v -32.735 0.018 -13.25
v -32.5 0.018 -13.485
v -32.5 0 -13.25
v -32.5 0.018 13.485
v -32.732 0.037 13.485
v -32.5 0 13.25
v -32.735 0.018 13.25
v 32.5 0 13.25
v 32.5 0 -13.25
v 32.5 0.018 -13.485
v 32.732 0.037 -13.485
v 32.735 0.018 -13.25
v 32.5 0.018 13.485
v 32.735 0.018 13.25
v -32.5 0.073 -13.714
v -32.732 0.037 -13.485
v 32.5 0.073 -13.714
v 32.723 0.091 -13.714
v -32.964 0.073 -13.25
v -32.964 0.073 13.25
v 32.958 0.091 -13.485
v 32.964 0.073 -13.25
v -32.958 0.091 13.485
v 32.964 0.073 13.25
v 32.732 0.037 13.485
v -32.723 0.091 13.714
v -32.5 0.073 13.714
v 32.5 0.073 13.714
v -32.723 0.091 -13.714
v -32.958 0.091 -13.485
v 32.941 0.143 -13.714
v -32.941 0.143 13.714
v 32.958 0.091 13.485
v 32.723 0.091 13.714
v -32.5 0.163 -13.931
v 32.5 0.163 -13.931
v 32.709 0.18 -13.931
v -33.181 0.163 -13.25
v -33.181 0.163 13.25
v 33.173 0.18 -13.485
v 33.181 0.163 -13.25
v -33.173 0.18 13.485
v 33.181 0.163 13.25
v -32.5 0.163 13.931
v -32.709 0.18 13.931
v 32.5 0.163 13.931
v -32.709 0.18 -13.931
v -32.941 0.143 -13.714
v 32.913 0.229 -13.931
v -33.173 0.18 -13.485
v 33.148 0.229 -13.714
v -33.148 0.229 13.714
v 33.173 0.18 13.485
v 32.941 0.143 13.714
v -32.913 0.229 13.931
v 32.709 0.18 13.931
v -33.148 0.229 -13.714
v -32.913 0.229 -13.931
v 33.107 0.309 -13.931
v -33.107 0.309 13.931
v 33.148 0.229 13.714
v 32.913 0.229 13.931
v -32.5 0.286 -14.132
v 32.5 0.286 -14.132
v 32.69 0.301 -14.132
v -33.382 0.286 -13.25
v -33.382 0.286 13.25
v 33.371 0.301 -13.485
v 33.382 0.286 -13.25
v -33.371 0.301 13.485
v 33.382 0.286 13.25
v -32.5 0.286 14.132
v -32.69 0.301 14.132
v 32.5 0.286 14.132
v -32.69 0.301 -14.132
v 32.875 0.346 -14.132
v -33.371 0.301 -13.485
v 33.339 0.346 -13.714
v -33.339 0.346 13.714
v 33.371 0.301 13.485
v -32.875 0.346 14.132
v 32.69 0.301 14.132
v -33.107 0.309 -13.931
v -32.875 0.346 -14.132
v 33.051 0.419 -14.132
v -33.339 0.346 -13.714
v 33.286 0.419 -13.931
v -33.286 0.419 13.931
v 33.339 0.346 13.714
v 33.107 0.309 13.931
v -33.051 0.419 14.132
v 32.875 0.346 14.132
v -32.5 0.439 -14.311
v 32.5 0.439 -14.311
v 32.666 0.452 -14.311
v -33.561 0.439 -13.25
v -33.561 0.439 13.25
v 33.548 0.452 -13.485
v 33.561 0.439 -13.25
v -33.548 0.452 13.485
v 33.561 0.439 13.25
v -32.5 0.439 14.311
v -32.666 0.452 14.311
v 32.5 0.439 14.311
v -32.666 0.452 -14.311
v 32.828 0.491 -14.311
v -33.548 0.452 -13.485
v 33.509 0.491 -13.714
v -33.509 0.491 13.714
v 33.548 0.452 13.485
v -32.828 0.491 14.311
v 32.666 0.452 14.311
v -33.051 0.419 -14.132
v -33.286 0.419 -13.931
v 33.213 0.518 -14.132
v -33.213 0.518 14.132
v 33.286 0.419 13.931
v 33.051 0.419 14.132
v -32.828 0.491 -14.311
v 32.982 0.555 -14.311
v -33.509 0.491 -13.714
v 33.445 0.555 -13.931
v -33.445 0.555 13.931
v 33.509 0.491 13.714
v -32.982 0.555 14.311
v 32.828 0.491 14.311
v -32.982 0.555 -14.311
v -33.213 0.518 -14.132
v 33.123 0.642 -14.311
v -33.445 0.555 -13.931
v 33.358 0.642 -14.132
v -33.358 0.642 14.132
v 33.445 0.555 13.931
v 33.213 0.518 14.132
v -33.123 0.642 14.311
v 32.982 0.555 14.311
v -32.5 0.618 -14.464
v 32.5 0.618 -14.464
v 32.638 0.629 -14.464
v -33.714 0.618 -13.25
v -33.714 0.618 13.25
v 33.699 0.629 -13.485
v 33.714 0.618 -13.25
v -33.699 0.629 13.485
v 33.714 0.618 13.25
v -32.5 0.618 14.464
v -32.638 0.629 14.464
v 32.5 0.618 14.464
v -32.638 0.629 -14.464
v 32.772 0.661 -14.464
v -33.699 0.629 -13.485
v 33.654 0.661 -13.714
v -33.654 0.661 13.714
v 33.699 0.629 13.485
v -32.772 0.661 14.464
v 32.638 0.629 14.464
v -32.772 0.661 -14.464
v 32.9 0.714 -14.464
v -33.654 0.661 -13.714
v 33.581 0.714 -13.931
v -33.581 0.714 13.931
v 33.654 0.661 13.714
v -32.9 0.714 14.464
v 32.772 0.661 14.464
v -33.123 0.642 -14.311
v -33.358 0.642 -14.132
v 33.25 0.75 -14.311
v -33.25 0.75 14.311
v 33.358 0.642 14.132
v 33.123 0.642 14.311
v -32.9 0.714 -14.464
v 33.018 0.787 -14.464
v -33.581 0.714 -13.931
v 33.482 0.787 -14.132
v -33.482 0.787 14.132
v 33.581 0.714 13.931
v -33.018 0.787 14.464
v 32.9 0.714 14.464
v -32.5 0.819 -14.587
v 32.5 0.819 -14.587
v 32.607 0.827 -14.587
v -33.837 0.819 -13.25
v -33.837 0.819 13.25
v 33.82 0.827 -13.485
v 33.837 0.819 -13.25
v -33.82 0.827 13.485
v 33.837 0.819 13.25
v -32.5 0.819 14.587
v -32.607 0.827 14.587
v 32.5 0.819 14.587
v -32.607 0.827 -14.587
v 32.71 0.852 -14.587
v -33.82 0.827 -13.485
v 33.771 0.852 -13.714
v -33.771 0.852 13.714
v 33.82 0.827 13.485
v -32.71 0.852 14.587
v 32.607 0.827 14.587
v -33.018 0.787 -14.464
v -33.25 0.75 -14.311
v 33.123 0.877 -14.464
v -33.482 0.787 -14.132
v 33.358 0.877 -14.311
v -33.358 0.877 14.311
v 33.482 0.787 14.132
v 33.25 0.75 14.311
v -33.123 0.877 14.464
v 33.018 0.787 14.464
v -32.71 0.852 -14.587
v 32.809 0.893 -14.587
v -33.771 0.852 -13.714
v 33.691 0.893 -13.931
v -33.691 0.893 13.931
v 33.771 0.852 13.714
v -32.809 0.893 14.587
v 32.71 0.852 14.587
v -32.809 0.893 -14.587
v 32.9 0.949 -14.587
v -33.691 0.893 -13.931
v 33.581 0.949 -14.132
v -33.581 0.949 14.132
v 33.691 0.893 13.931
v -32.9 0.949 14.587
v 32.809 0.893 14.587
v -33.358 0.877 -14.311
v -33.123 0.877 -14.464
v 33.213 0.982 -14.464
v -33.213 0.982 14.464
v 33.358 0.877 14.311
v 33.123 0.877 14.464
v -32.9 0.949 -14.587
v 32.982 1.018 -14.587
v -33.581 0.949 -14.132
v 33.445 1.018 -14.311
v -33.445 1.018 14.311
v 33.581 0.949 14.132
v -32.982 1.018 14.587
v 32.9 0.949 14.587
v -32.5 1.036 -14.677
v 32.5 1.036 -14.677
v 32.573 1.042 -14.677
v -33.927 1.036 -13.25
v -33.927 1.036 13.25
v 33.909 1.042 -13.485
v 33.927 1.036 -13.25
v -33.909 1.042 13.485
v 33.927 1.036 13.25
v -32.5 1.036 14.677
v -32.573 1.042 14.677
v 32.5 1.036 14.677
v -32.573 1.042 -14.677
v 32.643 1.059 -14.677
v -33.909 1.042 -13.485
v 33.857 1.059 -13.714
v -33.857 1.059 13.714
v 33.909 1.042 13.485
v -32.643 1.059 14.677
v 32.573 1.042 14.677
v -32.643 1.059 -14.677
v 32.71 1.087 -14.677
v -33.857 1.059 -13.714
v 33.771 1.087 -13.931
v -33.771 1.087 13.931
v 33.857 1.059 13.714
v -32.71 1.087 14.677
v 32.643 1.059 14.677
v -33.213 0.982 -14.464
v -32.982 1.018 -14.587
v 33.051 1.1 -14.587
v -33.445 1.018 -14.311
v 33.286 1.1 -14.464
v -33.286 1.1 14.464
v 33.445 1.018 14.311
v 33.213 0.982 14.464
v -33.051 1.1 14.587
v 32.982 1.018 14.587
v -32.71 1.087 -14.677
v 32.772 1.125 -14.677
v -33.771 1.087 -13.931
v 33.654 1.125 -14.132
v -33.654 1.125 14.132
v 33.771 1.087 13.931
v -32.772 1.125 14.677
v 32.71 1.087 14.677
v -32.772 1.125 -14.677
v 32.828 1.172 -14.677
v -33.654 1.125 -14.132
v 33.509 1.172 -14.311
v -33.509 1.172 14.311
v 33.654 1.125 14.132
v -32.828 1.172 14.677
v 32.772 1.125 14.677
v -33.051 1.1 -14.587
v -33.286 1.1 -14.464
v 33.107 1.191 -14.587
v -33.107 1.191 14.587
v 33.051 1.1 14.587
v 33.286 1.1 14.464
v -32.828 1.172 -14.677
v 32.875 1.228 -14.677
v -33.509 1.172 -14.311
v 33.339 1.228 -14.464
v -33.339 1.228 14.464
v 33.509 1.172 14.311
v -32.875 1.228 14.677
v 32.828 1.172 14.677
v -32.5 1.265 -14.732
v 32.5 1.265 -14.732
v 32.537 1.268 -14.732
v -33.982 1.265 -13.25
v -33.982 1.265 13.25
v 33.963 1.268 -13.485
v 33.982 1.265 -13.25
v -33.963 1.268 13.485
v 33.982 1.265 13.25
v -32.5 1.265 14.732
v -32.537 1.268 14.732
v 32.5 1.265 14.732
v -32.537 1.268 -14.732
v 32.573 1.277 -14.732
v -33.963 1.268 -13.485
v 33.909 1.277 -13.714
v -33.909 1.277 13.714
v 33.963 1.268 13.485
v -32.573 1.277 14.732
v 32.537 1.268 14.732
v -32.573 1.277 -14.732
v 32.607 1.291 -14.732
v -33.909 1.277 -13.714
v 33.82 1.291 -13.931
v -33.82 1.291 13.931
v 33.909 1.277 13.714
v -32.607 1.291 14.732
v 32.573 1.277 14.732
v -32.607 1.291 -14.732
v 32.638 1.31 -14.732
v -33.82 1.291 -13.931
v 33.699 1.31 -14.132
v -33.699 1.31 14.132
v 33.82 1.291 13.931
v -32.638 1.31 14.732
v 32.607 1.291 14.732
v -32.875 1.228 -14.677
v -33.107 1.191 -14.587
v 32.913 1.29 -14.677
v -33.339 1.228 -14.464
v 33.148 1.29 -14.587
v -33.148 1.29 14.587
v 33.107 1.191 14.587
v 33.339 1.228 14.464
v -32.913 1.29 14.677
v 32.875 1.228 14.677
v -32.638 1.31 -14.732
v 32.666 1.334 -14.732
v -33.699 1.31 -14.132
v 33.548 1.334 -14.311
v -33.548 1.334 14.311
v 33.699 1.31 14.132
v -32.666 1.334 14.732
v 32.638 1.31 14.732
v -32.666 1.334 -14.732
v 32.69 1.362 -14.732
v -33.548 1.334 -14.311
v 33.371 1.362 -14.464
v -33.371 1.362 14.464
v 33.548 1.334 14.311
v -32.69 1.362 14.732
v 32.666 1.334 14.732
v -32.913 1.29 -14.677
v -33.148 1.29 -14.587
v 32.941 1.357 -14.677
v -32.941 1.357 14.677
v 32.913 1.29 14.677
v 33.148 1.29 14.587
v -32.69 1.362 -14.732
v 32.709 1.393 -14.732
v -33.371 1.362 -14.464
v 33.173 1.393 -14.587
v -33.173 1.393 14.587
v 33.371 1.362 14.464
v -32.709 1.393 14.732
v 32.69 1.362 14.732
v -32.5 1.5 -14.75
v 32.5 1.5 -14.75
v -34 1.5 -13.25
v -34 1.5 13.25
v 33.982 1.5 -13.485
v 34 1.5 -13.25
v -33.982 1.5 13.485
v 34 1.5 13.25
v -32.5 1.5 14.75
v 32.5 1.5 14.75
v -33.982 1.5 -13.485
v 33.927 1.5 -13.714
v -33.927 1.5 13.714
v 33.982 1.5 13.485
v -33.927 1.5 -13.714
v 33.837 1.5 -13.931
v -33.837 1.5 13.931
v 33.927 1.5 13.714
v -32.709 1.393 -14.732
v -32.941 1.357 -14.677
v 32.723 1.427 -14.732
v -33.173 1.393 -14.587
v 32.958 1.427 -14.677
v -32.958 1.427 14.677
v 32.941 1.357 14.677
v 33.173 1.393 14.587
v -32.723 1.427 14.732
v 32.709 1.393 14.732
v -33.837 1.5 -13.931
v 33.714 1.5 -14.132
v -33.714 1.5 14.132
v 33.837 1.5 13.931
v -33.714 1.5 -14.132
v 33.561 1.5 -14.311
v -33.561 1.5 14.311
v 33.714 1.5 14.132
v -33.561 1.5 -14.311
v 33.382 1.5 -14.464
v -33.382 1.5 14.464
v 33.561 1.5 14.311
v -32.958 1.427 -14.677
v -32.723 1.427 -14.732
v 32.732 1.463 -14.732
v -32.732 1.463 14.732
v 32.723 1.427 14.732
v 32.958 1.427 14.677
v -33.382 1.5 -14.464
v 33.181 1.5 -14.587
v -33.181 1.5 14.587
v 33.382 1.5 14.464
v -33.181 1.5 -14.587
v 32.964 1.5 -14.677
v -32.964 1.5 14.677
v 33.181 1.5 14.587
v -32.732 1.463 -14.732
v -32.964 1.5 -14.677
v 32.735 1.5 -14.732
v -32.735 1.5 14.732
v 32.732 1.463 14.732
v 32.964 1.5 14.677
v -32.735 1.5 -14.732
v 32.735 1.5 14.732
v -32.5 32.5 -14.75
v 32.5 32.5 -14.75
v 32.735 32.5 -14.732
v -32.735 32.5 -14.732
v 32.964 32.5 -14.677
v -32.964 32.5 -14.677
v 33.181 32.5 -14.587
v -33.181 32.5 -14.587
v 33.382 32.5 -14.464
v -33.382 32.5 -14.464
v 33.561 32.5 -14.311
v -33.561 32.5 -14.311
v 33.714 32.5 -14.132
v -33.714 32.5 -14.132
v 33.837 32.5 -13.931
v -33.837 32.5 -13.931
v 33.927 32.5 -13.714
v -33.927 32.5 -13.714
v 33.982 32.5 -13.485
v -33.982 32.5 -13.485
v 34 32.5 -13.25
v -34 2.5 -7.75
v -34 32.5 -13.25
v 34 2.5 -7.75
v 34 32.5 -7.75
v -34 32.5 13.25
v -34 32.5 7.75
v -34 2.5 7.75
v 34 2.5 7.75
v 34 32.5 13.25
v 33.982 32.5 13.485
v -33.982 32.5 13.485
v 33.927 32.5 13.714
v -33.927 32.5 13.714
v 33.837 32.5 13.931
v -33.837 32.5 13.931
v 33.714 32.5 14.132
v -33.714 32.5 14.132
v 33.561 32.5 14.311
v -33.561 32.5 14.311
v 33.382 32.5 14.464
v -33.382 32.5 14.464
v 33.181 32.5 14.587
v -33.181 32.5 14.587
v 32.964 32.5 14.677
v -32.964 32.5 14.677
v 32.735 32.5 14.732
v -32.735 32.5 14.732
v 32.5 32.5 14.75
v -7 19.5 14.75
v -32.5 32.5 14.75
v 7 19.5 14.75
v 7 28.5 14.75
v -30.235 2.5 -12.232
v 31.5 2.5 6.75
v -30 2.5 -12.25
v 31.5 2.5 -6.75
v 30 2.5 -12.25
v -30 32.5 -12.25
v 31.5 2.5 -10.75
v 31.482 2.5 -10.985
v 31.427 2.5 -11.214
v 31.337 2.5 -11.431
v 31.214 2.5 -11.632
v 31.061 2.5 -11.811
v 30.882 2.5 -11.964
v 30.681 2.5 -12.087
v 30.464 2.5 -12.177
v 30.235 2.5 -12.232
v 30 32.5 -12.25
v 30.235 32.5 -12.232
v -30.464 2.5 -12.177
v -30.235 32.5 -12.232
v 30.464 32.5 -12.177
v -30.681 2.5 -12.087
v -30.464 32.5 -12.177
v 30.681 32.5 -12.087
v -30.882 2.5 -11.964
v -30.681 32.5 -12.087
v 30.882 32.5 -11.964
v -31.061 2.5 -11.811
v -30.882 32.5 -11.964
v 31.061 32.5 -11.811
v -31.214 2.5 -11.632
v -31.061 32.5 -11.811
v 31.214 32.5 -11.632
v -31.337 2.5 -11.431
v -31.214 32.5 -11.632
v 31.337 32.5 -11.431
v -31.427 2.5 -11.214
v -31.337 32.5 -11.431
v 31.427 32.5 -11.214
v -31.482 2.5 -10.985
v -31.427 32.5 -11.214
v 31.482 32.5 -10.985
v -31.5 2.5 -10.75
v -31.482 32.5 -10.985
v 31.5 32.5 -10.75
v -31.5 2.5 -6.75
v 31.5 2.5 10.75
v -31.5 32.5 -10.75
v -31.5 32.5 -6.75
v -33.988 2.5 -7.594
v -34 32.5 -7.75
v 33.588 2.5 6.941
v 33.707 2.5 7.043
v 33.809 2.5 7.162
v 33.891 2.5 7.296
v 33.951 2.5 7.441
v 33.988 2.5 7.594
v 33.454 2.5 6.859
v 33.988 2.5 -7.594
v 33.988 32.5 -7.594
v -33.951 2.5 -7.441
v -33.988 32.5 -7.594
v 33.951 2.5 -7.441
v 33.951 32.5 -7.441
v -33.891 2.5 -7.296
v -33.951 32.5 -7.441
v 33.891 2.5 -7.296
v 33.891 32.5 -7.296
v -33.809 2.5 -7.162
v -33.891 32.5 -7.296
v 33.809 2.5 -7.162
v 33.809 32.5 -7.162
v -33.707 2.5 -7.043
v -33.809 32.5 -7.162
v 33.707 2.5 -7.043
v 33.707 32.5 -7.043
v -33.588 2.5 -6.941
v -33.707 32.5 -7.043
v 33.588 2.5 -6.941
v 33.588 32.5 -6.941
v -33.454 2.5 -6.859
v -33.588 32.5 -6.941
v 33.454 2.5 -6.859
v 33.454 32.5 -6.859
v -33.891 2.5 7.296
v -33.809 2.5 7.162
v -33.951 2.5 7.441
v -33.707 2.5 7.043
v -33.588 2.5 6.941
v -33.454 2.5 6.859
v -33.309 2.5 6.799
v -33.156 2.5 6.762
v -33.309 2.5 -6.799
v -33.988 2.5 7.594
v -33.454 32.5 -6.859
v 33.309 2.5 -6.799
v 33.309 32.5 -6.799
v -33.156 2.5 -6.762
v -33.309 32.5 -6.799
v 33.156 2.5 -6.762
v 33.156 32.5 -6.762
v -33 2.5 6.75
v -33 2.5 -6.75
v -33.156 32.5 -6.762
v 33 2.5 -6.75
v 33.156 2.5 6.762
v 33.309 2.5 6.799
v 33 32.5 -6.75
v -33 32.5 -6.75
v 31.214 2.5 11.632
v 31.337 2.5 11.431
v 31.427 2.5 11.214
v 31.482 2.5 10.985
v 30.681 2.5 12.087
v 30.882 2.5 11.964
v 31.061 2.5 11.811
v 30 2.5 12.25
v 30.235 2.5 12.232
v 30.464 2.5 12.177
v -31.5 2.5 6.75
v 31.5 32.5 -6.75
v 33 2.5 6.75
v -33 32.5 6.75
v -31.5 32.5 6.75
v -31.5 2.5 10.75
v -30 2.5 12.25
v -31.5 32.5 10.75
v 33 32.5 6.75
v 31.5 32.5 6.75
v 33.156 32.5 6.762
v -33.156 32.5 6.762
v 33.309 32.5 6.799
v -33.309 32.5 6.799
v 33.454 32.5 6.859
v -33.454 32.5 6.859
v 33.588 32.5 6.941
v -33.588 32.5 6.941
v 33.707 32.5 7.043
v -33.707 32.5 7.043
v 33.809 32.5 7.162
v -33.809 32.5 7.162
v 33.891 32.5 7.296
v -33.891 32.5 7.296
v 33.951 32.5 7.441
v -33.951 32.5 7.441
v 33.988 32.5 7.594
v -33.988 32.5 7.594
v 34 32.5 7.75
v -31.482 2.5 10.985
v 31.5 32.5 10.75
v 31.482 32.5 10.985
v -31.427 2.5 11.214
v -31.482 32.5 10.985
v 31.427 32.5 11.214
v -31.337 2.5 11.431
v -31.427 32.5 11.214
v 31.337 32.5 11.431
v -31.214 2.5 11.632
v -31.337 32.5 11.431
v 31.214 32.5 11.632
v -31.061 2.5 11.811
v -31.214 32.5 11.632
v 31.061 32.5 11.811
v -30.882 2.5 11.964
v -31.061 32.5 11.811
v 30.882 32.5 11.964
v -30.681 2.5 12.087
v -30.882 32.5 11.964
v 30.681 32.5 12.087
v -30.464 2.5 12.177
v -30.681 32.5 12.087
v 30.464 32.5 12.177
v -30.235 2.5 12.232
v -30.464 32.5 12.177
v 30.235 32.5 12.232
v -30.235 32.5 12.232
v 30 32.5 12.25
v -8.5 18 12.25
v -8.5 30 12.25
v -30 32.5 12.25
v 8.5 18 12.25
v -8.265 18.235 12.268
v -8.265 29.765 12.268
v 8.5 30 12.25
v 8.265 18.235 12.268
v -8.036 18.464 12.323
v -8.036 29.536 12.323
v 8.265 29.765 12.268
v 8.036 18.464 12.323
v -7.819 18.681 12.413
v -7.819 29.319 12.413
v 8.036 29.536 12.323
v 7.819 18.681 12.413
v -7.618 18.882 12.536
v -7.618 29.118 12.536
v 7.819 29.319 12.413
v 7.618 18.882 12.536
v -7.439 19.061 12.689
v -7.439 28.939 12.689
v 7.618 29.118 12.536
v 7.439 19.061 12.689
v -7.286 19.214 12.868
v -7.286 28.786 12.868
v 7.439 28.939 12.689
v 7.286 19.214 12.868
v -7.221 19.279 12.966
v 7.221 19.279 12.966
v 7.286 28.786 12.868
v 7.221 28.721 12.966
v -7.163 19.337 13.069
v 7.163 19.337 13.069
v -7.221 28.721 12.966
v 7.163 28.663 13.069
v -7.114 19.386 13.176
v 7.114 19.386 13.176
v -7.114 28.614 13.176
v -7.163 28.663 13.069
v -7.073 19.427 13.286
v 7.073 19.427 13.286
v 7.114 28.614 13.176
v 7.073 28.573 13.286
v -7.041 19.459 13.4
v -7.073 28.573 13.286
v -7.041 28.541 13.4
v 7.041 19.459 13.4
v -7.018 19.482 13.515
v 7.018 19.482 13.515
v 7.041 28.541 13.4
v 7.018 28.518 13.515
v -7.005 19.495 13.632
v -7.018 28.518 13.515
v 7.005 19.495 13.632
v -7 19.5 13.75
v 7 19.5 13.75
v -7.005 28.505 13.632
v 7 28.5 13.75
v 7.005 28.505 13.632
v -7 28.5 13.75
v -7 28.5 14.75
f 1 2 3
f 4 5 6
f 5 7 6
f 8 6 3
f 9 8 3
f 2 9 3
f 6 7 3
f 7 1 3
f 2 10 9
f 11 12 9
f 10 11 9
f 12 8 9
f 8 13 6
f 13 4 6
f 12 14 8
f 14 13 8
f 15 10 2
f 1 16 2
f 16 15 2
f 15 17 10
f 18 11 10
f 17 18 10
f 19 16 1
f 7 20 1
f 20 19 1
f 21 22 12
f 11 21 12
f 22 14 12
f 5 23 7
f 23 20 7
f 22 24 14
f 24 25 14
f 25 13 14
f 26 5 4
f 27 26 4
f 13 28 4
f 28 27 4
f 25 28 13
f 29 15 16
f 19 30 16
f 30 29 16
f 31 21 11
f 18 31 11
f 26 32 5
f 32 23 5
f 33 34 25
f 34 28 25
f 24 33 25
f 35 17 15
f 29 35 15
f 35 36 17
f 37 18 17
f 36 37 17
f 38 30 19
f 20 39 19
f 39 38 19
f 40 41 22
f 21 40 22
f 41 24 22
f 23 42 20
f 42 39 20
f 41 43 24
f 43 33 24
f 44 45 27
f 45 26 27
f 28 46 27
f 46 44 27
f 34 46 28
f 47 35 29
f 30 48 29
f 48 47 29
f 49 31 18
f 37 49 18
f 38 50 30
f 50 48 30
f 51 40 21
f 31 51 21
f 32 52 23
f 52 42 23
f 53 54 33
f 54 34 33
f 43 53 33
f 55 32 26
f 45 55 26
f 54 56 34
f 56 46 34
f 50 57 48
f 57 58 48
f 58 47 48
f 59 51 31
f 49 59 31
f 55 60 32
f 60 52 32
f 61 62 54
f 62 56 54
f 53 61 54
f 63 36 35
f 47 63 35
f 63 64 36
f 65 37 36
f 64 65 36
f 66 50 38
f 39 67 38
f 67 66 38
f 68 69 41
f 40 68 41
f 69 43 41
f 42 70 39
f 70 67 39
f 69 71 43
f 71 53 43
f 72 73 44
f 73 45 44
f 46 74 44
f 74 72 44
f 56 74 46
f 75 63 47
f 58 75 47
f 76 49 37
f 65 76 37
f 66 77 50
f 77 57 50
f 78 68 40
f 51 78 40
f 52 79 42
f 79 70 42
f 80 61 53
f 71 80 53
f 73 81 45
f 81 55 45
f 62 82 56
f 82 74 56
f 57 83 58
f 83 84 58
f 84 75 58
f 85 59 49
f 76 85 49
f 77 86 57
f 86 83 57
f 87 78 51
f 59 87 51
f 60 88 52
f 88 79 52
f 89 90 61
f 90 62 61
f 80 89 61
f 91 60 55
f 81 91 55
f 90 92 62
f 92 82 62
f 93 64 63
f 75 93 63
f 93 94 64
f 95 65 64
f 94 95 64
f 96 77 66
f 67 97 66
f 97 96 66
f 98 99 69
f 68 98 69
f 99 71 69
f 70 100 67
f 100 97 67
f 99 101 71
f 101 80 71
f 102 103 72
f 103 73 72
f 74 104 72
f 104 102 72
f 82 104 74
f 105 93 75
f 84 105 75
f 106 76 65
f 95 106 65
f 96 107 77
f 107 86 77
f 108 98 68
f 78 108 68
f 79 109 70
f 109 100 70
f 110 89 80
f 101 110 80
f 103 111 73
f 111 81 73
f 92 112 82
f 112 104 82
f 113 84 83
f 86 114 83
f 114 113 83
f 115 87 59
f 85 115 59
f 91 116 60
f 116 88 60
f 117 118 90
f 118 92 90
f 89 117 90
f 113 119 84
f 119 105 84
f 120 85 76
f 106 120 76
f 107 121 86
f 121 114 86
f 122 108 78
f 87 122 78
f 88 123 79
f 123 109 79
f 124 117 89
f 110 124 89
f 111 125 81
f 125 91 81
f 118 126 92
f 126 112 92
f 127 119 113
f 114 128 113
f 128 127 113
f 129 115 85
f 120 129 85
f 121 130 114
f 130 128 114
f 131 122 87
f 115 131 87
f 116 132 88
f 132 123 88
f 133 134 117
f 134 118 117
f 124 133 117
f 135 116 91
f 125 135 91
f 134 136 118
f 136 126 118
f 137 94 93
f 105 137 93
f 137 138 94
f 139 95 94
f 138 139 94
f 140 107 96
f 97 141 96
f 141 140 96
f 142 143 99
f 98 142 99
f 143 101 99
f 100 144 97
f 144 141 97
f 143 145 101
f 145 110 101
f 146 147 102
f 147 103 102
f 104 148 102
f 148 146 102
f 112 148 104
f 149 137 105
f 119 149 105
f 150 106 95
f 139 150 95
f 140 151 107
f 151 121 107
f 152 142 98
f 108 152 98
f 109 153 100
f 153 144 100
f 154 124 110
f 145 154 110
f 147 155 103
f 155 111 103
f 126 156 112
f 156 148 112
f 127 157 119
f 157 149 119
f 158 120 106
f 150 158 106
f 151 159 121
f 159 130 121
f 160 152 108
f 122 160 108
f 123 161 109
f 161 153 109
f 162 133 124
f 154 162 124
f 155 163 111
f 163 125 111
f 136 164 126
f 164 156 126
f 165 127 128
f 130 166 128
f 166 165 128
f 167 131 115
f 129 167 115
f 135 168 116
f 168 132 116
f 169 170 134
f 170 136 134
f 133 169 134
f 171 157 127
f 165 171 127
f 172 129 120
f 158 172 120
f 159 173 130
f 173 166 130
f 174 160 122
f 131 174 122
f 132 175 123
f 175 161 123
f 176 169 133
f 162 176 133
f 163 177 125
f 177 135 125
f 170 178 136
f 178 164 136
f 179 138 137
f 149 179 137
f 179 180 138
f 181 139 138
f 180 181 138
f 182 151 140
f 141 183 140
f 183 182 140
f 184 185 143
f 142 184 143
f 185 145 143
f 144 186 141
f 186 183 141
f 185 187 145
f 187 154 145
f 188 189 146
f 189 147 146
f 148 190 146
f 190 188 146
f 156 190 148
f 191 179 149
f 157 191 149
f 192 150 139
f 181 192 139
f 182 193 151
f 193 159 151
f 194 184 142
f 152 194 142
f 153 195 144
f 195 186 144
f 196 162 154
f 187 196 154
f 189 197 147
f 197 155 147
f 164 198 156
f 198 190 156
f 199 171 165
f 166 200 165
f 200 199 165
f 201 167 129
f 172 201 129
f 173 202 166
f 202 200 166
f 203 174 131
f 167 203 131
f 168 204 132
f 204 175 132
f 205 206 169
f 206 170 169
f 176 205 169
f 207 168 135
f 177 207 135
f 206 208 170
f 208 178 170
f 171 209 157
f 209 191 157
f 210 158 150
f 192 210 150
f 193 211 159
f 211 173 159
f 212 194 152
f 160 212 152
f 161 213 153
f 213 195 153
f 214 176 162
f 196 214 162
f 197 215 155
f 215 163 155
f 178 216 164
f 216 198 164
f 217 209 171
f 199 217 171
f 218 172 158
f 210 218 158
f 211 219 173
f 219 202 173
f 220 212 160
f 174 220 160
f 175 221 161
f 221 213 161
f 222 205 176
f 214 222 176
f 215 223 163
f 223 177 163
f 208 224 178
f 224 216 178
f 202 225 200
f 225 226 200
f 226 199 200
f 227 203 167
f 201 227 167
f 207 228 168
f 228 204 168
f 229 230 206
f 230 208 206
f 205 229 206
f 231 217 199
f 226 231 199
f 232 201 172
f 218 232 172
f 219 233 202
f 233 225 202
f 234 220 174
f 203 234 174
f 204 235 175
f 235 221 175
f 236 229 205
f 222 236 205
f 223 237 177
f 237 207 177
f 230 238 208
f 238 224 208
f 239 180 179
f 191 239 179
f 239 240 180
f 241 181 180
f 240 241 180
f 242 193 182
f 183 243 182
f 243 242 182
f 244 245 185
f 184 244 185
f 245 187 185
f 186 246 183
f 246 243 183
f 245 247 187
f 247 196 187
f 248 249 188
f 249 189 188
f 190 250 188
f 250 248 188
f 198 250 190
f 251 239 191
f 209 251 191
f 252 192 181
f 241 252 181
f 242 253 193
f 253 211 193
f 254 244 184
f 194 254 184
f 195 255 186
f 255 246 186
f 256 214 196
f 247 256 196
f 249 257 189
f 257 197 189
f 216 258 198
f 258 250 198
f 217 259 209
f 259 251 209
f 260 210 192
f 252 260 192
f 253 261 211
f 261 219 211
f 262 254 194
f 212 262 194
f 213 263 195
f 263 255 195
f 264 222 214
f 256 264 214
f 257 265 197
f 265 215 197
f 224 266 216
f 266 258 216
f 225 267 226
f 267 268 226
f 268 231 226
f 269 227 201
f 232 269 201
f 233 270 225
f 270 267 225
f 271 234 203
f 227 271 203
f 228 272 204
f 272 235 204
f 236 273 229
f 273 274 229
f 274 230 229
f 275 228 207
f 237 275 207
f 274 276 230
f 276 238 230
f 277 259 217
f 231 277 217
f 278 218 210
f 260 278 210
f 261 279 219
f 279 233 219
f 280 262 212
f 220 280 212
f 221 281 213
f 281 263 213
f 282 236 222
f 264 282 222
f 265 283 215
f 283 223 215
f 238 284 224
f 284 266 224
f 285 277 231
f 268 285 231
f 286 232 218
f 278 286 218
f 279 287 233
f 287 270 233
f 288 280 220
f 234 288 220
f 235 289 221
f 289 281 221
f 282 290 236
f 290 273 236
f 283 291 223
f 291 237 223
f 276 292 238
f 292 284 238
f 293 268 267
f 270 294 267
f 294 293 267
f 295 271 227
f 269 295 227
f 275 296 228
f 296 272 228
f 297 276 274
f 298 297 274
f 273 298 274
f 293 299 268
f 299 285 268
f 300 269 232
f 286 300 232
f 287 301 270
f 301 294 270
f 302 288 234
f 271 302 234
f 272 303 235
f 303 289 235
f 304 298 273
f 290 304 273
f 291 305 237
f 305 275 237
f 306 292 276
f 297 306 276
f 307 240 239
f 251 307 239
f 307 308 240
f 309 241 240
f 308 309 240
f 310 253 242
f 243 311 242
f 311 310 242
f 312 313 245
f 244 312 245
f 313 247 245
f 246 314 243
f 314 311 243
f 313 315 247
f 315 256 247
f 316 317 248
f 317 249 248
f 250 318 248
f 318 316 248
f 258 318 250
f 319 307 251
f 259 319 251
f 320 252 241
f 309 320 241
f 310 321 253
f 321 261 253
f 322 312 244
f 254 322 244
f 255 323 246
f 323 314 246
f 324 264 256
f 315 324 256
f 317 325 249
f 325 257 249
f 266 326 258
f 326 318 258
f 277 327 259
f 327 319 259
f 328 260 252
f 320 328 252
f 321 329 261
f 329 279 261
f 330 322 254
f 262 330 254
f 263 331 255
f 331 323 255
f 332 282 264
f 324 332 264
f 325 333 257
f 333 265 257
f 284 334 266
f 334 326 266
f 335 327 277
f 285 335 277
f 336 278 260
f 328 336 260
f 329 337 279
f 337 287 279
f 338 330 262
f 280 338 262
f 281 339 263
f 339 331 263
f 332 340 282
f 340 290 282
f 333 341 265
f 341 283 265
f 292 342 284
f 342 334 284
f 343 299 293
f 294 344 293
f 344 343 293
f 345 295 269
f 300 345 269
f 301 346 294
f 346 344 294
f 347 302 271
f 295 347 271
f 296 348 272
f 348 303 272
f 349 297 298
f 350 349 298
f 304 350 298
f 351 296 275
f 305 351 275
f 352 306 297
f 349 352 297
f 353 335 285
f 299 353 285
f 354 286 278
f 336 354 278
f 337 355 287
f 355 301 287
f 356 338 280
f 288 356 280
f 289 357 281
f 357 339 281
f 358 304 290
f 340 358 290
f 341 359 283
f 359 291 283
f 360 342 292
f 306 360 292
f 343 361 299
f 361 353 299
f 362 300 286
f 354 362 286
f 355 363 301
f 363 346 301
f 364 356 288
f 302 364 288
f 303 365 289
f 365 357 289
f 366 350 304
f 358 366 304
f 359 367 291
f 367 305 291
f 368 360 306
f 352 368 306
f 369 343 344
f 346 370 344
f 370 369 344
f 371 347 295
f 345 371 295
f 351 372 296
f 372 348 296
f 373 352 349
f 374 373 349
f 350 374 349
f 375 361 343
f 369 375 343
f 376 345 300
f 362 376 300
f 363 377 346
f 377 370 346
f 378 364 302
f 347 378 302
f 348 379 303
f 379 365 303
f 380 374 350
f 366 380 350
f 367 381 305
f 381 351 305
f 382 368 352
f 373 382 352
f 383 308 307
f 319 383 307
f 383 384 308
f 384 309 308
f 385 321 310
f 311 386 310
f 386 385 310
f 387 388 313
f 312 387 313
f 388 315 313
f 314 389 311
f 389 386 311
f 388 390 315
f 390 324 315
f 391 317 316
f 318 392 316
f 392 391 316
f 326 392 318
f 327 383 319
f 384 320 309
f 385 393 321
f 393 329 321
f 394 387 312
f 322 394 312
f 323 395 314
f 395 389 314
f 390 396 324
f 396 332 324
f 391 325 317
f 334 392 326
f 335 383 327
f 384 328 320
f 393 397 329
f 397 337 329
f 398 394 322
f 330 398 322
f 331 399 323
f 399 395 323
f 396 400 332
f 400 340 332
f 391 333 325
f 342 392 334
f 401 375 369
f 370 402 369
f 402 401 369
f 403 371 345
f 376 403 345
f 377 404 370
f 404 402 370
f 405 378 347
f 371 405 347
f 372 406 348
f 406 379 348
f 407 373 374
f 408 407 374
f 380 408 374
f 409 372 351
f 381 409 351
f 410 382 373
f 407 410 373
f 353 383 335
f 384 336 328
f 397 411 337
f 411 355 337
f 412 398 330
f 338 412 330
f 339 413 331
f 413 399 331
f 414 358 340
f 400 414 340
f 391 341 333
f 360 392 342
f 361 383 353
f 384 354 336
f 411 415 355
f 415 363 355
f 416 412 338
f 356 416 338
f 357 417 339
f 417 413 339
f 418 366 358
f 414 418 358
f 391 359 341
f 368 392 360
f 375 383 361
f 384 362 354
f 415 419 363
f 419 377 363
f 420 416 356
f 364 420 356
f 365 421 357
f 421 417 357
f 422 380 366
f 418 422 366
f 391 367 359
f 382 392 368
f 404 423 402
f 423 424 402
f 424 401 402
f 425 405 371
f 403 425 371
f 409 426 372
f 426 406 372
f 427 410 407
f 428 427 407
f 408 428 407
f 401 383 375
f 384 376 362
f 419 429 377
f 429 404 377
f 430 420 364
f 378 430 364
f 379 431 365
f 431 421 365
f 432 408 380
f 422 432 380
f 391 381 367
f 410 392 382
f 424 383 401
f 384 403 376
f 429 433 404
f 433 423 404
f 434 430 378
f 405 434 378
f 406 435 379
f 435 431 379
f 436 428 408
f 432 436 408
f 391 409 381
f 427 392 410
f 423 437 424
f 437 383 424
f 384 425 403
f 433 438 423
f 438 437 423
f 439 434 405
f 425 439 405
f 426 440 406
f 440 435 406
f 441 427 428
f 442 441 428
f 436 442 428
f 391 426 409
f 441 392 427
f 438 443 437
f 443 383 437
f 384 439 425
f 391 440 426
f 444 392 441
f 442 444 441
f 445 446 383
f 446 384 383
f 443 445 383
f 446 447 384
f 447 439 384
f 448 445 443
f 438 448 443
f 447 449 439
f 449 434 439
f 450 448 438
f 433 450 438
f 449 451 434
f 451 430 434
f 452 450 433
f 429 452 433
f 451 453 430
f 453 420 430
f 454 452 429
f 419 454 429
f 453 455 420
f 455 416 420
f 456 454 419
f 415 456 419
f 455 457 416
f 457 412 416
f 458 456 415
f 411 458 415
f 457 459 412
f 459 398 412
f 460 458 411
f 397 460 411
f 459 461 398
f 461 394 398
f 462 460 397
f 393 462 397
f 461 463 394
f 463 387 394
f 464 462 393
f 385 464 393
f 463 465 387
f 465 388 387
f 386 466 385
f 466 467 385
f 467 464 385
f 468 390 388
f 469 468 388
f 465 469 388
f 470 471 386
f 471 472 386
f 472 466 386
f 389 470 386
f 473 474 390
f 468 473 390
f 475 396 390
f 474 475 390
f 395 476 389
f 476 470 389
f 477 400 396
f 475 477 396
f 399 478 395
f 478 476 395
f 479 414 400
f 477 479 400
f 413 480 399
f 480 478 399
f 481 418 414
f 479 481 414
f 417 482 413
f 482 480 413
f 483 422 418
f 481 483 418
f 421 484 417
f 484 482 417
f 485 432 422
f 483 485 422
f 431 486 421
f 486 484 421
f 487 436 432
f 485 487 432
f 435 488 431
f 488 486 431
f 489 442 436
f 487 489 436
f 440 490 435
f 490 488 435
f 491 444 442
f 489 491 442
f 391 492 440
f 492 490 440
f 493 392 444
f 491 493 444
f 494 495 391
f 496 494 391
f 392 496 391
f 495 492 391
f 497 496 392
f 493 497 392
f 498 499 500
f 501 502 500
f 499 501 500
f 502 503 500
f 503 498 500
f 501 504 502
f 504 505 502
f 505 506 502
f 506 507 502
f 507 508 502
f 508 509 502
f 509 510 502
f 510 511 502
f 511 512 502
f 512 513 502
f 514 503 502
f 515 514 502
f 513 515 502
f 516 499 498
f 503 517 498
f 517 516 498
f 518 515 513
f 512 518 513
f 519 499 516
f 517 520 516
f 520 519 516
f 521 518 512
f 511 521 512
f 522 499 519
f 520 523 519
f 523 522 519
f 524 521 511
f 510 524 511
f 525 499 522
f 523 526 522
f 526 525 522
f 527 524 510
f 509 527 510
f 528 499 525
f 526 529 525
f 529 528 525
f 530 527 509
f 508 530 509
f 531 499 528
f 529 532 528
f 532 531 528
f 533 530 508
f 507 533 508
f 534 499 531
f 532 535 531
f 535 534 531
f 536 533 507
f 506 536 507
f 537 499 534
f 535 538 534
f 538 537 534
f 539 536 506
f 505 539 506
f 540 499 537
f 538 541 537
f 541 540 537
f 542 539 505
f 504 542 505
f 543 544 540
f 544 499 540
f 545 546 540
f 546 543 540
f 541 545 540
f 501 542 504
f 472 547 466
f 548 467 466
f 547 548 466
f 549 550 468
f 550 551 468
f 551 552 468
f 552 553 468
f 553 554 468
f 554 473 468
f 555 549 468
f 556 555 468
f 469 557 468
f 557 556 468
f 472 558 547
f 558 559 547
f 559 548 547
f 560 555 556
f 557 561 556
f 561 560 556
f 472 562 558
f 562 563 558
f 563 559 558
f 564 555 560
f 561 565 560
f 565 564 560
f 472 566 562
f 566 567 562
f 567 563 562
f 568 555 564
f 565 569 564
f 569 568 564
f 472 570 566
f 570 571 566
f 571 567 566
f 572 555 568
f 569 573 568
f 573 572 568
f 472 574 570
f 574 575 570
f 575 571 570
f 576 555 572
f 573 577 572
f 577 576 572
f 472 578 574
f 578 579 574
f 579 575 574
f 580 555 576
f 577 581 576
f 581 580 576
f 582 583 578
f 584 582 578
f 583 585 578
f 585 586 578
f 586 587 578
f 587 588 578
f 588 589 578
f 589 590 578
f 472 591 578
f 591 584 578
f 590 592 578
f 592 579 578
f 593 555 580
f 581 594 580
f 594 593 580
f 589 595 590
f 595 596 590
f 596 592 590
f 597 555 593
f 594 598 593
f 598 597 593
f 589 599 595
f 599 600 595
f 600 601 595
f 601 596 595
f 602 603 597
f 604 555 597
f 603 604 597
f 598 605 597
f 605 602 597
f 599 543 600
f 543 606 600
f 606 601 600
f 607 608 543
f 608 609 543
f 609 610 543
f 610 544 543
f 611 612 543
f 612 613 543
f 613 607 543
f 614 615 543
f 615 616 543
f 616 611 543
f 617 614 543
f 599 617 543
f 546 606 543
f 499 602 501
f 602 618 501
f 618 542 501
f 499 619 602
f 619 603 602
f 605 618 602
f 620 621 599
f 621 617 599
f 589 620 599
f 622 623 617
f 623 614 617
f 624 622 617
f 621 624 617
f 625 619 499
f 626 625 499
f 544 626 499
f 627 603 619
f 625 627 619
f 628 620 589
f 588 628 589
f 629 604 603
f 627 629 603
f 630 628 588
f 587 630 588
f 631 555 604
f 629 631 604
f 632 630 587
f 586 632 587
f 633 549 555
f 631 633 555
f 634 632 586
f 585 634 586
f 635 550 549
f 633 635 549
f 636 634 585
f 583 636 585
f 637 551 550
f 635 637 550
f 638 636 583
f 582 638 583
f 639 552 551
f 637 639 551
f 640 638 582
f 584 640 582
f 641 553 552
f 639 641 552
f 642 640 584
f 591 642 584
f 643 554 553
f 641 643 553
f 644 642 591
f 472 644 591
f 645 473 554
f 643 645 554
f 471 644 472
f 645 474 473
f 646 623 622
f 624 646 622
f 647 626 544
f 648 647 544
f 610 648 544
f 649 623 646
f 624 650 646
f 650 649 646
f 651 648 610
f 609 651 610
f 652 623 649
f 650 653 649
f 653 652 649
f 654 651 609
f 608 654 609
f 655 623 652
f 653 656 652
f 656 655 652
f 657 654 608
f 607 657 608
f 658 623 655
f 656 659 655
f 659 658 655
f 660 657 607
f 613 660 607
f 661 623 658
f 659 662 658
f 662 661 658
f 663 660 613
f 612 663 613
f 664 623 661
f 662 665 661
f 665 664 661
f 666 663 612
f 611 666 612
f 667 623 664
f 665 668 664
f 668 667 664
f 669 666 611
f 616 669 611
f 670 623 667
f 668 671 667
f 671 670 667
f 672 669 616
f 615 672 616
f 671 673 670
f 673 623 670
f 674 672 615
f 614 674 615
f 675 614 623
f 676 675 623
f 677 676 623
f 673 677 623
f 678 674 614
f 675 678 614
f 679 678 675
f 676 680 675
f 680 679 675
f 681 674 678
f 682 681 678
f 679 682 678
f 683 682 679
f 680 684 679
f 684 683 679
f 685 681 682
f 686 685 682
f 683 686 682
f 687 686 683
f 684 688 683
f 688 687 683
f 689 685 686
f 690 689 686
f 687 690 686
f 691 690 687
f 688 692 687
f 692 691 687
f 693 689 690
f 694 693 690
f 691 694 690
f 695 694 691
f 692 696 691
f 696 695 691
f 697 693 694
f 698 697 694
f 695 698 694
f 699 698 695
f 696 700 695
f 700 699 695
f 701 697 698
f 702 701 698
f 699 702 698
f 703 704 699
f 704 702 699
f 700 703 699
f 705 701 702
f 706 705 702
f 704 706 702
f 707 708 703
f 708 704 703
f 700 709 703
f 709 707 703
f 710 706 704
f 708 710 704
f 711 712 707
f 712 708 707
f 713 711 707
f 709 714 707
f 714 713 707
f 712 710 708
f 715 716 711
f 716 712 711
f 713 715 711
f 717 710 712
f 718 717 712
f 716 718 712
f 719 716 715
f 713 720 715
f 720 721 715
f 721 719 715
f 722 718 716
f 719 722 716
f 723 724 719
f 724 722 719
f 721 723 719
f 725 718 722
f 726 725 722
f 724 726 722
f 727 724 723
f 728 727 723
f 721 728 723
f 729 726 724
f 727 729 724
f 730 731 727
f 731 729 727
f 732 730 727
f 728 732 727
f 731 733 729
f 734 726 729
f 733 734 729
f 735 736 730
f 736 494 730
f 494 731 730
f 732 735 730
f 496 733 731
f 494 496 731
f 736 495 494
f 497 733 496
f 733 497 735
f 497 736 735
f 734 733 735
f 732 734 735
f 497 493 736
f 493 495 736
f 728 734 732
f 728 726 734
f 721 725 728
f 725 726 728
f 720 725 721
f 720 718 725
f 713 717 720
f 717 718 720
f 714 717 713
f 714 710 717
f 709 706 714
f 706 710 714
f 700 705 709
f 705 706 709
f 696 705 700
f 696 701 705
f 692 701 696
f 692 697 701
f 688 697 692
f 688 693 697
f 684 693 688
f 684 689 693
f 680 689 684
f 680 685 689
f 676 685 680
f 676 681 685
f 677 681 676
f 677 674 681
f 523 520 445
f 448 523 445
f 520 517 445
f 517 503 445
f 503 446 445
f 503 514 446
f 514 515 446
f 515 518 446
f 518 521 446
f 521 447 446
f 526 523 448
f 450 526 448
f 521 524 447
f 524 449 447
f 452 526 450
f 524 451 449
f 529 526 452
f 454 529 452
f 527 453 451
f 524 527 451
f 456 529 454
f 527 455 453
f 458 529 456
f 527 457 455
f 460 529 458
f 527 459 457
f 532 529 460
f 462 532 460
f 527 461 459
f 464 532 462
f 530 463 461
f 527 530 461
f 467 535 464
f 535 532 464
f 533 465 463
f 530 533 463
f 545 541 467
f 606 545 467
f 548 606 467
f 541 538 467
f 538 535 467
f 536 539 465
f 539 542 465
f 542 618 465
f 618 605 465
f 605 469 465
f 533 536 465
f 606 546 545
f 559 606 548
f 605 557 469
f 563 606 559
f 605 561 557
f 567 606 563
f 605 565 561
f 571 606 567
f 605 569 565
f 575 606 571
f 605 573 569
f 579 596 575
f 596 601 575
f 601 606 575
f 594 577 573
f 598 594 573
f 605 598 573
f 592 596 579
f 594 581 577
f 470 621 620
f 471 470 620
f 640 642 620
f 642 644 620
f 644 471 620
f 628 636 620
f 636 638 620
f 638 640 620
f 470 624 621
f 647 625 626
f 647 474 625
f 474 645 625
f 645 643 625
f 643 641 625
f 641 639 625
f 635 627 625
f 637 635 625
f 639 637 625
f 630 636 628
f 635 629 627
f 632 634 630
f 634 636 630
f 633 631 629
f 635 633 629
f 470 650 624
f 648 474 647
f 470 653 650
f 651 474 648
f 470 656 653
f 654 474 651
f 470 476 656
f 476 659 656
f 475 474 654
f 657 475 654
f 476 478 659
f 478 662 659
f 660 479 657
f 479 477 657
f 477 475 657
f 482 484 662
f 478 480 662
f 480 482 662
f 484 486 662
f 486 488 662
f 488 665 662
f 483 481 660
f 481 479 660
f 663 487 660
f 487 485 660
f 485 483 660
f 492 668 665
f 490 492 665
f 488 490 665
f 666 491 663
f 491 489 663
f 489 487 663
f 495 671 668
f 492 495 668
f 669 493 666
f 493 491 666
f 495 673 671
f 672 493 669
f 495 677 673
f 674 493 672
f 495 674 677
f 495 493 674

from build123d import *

# Parameters (mm, degrees)
SKETCH1_W           = 68
SKETCH1_H           = 29.5
BOSS_EXTRUDE1_DEPTH = 2.5
BOSS_EXTRUDE2_DEPTH = 30
CUT_EXTRUDE1_DEPTH  = 50.5
FILLET1_R           = 1.5
FILLET2_R           = 1


with BuildPart() as part:
    # Sketch1 → Boss-Extrude1 (new body)
    with BuildSketch(Plane(origin=(0, 0, 0), x_dir=(1, 0, 0), z_dir=(0, 1, 0))):
        Rectangle(SKETCH1_W, SKETCH1_H)
    extrude(amount=BOSS_EXTRUDE1_DEPTH)

    # Sketch2 → Boss-Extrude2 (add)
    with BuildSketch(Plane(origin=(0, 2.5, 0), x_dir=(1, 0, 0), z_dir=(0, 1, 0))):
        Polygon((-31.5, -6.75), (-34, -6.75), (-34, -14.75), (0, -14.75), (0, -12.25), (-31.5, -12.25), align=None)
        Polygon((0, -12.25), (0, -14.75), (34, -14.75), (34, -6.75), (31.5, -6.75), (31.5, -12.25), align=None)
        Polygon((34, 14.75), (0, 14.75), (0, 12.25), (31.5, 12.25), (31.5, 6.75), (34, 6.75), align=None)
        Polygon((0, 14.75), (-34, 14.75), (-34, 6.75), (-31.5, 6.75), (-31.5, 12.25), (0, 12.25), align=None)
    extrude(amount=BOSS_EXTRUDE2_DEPTH)

    # Sketch3 → Cut-Extrude1 (cut)
    with BuildSketch(Plane.XY.offset(-12.25)):
        Polygon((7, 19.5), (7, 28.5), (0, 28.5), (-7, 28.5), (-7, 19.5), align=None)
    extrude(amount=CUT_EXTRUDE1_DEPTH, mode=Mode.SUBTRACT)

    # Fillet1
    fillet1_edges = [part.edges().sort_by_distance(p)[0] for p in [
        (0, 0, 14.75),
        (-34, 0, 0),
        (-34, 16.25, -14.75),
        (34, 16.25, -14.75),
        (34, 16.25, 14.75),
        (-34, 16.25, 14.75),
        (31.5, 17.5, 12.25),
        (-31.5, 17.5, 12.25),
        (-31.5, 17.5, -12.25),
        (31.5, 17.5, -12.25),
        (7, 24, 12.25),
        (0, 28.5, 12.25),
        (-7, 24, 12.25),
        (0, 19.5, 12.25),
        (0, 0, -14.75),
        (34, 0, 0),
    ]]
    fillet(fillet1_edges, radius=FILLET1_R)

    # Fillet2
    fillet2_edges = [part.edges().sort_by_distance(p)[0] for p in [
        (-34, 17.5, 6.75),
        (34, 17.5, 6.75),
        (34, 17.5, -6.75),
        (-34, 17.5, -6.75),
    ]]
    fillet(fillet2_edges, radius=FILLET2_R)


solid = part.part
